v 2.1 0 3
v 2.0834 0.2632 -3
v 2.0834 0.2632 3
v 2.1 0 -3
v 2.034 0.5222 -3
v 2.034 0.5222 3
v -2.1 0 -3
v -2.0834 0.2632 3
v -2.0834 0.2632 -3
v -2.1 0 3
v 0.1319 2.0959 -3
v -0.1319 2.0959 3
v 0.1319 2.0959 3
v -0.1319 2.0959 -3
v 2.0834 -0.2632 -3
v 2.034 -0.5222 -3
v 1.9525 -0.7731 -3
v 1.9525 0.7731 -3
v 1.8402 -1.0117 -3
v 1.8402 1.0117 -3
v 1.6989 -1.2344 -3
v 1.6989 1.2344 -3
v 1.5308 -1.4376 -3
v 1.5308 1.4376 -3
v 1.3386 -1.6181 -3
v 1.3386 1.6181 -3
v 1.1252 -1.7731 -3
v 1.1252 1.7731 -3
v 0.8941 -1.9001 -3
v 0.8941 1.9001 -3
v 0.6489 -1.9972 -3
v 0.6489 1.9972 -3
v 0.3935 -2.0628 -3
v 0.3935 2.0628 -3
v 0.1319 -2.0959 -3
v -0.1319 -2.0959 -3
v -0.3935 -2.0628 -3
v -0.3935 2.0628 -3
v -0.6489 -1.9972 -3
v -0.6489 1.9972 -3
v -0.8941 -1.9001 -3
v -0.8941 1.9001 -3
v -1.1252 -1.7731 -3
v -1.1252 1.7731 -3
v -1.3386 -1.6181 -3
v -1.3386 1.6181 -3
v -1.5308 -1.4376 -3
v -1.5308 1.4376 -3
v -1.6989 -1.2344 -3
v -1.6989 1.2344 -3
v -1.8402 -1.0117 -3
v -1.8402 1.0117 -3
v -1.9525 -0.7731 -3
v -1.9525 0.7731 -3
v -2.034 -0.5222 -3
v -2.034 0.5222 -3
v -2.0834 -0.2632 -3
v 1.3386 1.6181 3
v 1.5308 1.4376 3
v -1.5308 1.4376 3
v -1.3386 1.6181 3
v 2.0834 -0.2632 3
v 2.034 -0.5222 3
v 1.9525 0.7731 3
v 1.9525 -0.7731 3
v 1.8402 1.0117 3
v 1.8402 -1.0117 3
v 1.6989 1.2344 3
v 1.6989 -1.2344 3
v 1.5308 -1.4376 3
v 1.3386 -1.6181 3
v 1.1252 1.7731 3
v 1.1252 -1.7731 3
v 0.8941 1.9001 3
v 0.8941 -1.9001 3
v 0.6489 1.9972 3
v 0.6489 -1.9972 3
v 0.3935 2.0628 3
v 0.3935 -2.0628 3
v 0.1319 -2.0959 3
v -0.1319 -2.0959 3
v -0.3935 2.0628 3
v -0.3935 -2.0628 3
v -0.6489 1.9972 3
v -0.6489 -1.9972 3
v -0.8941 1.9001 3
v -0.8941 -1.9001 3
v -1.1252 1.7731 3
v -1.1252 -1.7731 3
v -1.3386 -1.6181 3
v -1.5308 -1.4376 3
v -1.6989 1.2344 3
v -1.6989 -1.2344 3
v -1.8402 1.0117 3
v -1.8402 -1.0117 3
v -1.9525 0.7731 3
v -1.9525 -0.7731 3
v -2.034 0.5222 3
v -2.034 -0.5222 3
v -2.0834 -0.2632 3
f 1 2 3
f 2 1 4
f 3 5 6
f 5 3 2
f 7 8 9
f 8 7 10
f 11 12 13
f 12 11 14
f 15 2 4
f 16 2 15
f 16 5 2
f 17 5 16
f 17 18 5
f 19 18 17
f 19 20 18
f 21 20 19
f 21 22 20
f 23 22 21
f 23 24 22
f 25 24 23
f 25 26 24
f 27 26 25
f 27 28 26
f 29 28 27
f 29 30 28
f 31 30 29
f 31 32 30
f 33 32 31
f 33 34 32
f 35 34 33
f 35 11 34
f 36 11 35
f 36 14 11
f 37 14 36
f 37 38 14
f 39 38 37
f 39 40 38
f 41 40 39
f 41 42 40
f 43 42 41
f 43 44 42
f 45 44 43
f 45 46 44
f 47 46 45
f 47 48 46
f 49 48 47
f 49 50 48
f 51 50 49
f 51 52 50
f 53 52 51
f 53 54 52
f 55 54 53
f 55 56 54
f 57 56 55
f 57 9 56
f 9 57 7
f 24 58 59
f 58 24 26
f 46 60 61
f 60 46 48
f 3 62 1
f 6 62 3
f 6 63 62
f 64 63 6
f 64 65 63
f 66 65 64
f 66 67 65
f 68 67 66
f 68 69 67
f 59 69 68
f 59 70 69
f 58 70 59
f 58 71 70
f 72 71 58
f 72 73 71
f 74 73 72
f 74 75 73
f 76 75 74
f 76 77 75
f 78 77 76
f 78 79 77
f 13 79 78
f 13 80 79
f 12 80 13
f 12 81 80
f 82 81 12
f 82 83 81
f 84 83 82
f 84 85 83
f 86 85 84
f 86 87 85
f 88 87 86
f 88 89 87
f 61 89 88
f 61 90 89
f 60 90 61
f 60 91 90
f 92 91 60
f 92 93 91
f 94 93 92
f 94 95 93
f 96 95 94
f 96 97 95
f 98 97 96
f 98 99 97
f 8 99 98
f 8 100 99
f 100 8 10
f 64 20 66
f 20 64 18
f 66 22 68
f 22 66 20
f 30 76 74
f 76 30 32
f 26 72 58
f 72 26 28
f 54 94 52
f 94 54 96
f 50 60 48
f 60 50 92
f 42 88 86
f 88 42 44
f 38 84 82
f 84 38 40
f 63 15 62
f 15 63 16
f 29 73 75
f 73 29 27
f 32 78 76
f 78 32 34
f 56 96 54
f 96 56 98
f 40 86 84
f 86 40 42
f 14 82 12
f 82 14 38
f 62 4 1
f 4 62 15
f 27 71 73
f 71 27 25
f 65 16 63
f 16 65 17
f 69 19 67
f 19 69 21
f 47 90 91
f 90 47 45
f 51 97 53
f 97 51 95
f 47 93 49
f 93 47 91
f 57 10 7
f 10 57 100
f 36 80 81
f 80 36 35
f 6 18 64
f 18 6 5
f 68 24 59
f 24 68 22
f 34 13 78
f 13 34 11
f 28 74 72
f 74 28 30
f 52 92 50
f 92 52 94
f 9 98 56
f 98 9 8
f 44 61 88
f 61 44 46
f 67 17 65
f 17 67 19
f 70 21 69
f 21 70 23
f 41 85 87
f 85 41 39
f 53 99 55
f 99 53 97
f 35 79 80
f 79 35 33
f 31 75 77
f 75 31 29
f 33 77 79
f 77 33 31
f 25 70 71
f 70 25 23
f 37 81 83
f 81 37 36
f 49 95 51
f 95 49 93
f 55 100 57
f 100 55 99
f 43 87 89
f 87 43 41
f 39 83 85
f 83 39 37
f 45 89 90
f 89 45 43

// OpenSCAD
$fn = 50;


difference() {
	union() {
		translate(v = [0, 0, -3.0000000000]) {
			cylinder(h = 6, r = 2.1000000000);
		}
	}
	union() {
		translate(v = [0, 0, -100.0000000000]) {
			cylinder(h = 200, r = 0);
		}
	}
}
